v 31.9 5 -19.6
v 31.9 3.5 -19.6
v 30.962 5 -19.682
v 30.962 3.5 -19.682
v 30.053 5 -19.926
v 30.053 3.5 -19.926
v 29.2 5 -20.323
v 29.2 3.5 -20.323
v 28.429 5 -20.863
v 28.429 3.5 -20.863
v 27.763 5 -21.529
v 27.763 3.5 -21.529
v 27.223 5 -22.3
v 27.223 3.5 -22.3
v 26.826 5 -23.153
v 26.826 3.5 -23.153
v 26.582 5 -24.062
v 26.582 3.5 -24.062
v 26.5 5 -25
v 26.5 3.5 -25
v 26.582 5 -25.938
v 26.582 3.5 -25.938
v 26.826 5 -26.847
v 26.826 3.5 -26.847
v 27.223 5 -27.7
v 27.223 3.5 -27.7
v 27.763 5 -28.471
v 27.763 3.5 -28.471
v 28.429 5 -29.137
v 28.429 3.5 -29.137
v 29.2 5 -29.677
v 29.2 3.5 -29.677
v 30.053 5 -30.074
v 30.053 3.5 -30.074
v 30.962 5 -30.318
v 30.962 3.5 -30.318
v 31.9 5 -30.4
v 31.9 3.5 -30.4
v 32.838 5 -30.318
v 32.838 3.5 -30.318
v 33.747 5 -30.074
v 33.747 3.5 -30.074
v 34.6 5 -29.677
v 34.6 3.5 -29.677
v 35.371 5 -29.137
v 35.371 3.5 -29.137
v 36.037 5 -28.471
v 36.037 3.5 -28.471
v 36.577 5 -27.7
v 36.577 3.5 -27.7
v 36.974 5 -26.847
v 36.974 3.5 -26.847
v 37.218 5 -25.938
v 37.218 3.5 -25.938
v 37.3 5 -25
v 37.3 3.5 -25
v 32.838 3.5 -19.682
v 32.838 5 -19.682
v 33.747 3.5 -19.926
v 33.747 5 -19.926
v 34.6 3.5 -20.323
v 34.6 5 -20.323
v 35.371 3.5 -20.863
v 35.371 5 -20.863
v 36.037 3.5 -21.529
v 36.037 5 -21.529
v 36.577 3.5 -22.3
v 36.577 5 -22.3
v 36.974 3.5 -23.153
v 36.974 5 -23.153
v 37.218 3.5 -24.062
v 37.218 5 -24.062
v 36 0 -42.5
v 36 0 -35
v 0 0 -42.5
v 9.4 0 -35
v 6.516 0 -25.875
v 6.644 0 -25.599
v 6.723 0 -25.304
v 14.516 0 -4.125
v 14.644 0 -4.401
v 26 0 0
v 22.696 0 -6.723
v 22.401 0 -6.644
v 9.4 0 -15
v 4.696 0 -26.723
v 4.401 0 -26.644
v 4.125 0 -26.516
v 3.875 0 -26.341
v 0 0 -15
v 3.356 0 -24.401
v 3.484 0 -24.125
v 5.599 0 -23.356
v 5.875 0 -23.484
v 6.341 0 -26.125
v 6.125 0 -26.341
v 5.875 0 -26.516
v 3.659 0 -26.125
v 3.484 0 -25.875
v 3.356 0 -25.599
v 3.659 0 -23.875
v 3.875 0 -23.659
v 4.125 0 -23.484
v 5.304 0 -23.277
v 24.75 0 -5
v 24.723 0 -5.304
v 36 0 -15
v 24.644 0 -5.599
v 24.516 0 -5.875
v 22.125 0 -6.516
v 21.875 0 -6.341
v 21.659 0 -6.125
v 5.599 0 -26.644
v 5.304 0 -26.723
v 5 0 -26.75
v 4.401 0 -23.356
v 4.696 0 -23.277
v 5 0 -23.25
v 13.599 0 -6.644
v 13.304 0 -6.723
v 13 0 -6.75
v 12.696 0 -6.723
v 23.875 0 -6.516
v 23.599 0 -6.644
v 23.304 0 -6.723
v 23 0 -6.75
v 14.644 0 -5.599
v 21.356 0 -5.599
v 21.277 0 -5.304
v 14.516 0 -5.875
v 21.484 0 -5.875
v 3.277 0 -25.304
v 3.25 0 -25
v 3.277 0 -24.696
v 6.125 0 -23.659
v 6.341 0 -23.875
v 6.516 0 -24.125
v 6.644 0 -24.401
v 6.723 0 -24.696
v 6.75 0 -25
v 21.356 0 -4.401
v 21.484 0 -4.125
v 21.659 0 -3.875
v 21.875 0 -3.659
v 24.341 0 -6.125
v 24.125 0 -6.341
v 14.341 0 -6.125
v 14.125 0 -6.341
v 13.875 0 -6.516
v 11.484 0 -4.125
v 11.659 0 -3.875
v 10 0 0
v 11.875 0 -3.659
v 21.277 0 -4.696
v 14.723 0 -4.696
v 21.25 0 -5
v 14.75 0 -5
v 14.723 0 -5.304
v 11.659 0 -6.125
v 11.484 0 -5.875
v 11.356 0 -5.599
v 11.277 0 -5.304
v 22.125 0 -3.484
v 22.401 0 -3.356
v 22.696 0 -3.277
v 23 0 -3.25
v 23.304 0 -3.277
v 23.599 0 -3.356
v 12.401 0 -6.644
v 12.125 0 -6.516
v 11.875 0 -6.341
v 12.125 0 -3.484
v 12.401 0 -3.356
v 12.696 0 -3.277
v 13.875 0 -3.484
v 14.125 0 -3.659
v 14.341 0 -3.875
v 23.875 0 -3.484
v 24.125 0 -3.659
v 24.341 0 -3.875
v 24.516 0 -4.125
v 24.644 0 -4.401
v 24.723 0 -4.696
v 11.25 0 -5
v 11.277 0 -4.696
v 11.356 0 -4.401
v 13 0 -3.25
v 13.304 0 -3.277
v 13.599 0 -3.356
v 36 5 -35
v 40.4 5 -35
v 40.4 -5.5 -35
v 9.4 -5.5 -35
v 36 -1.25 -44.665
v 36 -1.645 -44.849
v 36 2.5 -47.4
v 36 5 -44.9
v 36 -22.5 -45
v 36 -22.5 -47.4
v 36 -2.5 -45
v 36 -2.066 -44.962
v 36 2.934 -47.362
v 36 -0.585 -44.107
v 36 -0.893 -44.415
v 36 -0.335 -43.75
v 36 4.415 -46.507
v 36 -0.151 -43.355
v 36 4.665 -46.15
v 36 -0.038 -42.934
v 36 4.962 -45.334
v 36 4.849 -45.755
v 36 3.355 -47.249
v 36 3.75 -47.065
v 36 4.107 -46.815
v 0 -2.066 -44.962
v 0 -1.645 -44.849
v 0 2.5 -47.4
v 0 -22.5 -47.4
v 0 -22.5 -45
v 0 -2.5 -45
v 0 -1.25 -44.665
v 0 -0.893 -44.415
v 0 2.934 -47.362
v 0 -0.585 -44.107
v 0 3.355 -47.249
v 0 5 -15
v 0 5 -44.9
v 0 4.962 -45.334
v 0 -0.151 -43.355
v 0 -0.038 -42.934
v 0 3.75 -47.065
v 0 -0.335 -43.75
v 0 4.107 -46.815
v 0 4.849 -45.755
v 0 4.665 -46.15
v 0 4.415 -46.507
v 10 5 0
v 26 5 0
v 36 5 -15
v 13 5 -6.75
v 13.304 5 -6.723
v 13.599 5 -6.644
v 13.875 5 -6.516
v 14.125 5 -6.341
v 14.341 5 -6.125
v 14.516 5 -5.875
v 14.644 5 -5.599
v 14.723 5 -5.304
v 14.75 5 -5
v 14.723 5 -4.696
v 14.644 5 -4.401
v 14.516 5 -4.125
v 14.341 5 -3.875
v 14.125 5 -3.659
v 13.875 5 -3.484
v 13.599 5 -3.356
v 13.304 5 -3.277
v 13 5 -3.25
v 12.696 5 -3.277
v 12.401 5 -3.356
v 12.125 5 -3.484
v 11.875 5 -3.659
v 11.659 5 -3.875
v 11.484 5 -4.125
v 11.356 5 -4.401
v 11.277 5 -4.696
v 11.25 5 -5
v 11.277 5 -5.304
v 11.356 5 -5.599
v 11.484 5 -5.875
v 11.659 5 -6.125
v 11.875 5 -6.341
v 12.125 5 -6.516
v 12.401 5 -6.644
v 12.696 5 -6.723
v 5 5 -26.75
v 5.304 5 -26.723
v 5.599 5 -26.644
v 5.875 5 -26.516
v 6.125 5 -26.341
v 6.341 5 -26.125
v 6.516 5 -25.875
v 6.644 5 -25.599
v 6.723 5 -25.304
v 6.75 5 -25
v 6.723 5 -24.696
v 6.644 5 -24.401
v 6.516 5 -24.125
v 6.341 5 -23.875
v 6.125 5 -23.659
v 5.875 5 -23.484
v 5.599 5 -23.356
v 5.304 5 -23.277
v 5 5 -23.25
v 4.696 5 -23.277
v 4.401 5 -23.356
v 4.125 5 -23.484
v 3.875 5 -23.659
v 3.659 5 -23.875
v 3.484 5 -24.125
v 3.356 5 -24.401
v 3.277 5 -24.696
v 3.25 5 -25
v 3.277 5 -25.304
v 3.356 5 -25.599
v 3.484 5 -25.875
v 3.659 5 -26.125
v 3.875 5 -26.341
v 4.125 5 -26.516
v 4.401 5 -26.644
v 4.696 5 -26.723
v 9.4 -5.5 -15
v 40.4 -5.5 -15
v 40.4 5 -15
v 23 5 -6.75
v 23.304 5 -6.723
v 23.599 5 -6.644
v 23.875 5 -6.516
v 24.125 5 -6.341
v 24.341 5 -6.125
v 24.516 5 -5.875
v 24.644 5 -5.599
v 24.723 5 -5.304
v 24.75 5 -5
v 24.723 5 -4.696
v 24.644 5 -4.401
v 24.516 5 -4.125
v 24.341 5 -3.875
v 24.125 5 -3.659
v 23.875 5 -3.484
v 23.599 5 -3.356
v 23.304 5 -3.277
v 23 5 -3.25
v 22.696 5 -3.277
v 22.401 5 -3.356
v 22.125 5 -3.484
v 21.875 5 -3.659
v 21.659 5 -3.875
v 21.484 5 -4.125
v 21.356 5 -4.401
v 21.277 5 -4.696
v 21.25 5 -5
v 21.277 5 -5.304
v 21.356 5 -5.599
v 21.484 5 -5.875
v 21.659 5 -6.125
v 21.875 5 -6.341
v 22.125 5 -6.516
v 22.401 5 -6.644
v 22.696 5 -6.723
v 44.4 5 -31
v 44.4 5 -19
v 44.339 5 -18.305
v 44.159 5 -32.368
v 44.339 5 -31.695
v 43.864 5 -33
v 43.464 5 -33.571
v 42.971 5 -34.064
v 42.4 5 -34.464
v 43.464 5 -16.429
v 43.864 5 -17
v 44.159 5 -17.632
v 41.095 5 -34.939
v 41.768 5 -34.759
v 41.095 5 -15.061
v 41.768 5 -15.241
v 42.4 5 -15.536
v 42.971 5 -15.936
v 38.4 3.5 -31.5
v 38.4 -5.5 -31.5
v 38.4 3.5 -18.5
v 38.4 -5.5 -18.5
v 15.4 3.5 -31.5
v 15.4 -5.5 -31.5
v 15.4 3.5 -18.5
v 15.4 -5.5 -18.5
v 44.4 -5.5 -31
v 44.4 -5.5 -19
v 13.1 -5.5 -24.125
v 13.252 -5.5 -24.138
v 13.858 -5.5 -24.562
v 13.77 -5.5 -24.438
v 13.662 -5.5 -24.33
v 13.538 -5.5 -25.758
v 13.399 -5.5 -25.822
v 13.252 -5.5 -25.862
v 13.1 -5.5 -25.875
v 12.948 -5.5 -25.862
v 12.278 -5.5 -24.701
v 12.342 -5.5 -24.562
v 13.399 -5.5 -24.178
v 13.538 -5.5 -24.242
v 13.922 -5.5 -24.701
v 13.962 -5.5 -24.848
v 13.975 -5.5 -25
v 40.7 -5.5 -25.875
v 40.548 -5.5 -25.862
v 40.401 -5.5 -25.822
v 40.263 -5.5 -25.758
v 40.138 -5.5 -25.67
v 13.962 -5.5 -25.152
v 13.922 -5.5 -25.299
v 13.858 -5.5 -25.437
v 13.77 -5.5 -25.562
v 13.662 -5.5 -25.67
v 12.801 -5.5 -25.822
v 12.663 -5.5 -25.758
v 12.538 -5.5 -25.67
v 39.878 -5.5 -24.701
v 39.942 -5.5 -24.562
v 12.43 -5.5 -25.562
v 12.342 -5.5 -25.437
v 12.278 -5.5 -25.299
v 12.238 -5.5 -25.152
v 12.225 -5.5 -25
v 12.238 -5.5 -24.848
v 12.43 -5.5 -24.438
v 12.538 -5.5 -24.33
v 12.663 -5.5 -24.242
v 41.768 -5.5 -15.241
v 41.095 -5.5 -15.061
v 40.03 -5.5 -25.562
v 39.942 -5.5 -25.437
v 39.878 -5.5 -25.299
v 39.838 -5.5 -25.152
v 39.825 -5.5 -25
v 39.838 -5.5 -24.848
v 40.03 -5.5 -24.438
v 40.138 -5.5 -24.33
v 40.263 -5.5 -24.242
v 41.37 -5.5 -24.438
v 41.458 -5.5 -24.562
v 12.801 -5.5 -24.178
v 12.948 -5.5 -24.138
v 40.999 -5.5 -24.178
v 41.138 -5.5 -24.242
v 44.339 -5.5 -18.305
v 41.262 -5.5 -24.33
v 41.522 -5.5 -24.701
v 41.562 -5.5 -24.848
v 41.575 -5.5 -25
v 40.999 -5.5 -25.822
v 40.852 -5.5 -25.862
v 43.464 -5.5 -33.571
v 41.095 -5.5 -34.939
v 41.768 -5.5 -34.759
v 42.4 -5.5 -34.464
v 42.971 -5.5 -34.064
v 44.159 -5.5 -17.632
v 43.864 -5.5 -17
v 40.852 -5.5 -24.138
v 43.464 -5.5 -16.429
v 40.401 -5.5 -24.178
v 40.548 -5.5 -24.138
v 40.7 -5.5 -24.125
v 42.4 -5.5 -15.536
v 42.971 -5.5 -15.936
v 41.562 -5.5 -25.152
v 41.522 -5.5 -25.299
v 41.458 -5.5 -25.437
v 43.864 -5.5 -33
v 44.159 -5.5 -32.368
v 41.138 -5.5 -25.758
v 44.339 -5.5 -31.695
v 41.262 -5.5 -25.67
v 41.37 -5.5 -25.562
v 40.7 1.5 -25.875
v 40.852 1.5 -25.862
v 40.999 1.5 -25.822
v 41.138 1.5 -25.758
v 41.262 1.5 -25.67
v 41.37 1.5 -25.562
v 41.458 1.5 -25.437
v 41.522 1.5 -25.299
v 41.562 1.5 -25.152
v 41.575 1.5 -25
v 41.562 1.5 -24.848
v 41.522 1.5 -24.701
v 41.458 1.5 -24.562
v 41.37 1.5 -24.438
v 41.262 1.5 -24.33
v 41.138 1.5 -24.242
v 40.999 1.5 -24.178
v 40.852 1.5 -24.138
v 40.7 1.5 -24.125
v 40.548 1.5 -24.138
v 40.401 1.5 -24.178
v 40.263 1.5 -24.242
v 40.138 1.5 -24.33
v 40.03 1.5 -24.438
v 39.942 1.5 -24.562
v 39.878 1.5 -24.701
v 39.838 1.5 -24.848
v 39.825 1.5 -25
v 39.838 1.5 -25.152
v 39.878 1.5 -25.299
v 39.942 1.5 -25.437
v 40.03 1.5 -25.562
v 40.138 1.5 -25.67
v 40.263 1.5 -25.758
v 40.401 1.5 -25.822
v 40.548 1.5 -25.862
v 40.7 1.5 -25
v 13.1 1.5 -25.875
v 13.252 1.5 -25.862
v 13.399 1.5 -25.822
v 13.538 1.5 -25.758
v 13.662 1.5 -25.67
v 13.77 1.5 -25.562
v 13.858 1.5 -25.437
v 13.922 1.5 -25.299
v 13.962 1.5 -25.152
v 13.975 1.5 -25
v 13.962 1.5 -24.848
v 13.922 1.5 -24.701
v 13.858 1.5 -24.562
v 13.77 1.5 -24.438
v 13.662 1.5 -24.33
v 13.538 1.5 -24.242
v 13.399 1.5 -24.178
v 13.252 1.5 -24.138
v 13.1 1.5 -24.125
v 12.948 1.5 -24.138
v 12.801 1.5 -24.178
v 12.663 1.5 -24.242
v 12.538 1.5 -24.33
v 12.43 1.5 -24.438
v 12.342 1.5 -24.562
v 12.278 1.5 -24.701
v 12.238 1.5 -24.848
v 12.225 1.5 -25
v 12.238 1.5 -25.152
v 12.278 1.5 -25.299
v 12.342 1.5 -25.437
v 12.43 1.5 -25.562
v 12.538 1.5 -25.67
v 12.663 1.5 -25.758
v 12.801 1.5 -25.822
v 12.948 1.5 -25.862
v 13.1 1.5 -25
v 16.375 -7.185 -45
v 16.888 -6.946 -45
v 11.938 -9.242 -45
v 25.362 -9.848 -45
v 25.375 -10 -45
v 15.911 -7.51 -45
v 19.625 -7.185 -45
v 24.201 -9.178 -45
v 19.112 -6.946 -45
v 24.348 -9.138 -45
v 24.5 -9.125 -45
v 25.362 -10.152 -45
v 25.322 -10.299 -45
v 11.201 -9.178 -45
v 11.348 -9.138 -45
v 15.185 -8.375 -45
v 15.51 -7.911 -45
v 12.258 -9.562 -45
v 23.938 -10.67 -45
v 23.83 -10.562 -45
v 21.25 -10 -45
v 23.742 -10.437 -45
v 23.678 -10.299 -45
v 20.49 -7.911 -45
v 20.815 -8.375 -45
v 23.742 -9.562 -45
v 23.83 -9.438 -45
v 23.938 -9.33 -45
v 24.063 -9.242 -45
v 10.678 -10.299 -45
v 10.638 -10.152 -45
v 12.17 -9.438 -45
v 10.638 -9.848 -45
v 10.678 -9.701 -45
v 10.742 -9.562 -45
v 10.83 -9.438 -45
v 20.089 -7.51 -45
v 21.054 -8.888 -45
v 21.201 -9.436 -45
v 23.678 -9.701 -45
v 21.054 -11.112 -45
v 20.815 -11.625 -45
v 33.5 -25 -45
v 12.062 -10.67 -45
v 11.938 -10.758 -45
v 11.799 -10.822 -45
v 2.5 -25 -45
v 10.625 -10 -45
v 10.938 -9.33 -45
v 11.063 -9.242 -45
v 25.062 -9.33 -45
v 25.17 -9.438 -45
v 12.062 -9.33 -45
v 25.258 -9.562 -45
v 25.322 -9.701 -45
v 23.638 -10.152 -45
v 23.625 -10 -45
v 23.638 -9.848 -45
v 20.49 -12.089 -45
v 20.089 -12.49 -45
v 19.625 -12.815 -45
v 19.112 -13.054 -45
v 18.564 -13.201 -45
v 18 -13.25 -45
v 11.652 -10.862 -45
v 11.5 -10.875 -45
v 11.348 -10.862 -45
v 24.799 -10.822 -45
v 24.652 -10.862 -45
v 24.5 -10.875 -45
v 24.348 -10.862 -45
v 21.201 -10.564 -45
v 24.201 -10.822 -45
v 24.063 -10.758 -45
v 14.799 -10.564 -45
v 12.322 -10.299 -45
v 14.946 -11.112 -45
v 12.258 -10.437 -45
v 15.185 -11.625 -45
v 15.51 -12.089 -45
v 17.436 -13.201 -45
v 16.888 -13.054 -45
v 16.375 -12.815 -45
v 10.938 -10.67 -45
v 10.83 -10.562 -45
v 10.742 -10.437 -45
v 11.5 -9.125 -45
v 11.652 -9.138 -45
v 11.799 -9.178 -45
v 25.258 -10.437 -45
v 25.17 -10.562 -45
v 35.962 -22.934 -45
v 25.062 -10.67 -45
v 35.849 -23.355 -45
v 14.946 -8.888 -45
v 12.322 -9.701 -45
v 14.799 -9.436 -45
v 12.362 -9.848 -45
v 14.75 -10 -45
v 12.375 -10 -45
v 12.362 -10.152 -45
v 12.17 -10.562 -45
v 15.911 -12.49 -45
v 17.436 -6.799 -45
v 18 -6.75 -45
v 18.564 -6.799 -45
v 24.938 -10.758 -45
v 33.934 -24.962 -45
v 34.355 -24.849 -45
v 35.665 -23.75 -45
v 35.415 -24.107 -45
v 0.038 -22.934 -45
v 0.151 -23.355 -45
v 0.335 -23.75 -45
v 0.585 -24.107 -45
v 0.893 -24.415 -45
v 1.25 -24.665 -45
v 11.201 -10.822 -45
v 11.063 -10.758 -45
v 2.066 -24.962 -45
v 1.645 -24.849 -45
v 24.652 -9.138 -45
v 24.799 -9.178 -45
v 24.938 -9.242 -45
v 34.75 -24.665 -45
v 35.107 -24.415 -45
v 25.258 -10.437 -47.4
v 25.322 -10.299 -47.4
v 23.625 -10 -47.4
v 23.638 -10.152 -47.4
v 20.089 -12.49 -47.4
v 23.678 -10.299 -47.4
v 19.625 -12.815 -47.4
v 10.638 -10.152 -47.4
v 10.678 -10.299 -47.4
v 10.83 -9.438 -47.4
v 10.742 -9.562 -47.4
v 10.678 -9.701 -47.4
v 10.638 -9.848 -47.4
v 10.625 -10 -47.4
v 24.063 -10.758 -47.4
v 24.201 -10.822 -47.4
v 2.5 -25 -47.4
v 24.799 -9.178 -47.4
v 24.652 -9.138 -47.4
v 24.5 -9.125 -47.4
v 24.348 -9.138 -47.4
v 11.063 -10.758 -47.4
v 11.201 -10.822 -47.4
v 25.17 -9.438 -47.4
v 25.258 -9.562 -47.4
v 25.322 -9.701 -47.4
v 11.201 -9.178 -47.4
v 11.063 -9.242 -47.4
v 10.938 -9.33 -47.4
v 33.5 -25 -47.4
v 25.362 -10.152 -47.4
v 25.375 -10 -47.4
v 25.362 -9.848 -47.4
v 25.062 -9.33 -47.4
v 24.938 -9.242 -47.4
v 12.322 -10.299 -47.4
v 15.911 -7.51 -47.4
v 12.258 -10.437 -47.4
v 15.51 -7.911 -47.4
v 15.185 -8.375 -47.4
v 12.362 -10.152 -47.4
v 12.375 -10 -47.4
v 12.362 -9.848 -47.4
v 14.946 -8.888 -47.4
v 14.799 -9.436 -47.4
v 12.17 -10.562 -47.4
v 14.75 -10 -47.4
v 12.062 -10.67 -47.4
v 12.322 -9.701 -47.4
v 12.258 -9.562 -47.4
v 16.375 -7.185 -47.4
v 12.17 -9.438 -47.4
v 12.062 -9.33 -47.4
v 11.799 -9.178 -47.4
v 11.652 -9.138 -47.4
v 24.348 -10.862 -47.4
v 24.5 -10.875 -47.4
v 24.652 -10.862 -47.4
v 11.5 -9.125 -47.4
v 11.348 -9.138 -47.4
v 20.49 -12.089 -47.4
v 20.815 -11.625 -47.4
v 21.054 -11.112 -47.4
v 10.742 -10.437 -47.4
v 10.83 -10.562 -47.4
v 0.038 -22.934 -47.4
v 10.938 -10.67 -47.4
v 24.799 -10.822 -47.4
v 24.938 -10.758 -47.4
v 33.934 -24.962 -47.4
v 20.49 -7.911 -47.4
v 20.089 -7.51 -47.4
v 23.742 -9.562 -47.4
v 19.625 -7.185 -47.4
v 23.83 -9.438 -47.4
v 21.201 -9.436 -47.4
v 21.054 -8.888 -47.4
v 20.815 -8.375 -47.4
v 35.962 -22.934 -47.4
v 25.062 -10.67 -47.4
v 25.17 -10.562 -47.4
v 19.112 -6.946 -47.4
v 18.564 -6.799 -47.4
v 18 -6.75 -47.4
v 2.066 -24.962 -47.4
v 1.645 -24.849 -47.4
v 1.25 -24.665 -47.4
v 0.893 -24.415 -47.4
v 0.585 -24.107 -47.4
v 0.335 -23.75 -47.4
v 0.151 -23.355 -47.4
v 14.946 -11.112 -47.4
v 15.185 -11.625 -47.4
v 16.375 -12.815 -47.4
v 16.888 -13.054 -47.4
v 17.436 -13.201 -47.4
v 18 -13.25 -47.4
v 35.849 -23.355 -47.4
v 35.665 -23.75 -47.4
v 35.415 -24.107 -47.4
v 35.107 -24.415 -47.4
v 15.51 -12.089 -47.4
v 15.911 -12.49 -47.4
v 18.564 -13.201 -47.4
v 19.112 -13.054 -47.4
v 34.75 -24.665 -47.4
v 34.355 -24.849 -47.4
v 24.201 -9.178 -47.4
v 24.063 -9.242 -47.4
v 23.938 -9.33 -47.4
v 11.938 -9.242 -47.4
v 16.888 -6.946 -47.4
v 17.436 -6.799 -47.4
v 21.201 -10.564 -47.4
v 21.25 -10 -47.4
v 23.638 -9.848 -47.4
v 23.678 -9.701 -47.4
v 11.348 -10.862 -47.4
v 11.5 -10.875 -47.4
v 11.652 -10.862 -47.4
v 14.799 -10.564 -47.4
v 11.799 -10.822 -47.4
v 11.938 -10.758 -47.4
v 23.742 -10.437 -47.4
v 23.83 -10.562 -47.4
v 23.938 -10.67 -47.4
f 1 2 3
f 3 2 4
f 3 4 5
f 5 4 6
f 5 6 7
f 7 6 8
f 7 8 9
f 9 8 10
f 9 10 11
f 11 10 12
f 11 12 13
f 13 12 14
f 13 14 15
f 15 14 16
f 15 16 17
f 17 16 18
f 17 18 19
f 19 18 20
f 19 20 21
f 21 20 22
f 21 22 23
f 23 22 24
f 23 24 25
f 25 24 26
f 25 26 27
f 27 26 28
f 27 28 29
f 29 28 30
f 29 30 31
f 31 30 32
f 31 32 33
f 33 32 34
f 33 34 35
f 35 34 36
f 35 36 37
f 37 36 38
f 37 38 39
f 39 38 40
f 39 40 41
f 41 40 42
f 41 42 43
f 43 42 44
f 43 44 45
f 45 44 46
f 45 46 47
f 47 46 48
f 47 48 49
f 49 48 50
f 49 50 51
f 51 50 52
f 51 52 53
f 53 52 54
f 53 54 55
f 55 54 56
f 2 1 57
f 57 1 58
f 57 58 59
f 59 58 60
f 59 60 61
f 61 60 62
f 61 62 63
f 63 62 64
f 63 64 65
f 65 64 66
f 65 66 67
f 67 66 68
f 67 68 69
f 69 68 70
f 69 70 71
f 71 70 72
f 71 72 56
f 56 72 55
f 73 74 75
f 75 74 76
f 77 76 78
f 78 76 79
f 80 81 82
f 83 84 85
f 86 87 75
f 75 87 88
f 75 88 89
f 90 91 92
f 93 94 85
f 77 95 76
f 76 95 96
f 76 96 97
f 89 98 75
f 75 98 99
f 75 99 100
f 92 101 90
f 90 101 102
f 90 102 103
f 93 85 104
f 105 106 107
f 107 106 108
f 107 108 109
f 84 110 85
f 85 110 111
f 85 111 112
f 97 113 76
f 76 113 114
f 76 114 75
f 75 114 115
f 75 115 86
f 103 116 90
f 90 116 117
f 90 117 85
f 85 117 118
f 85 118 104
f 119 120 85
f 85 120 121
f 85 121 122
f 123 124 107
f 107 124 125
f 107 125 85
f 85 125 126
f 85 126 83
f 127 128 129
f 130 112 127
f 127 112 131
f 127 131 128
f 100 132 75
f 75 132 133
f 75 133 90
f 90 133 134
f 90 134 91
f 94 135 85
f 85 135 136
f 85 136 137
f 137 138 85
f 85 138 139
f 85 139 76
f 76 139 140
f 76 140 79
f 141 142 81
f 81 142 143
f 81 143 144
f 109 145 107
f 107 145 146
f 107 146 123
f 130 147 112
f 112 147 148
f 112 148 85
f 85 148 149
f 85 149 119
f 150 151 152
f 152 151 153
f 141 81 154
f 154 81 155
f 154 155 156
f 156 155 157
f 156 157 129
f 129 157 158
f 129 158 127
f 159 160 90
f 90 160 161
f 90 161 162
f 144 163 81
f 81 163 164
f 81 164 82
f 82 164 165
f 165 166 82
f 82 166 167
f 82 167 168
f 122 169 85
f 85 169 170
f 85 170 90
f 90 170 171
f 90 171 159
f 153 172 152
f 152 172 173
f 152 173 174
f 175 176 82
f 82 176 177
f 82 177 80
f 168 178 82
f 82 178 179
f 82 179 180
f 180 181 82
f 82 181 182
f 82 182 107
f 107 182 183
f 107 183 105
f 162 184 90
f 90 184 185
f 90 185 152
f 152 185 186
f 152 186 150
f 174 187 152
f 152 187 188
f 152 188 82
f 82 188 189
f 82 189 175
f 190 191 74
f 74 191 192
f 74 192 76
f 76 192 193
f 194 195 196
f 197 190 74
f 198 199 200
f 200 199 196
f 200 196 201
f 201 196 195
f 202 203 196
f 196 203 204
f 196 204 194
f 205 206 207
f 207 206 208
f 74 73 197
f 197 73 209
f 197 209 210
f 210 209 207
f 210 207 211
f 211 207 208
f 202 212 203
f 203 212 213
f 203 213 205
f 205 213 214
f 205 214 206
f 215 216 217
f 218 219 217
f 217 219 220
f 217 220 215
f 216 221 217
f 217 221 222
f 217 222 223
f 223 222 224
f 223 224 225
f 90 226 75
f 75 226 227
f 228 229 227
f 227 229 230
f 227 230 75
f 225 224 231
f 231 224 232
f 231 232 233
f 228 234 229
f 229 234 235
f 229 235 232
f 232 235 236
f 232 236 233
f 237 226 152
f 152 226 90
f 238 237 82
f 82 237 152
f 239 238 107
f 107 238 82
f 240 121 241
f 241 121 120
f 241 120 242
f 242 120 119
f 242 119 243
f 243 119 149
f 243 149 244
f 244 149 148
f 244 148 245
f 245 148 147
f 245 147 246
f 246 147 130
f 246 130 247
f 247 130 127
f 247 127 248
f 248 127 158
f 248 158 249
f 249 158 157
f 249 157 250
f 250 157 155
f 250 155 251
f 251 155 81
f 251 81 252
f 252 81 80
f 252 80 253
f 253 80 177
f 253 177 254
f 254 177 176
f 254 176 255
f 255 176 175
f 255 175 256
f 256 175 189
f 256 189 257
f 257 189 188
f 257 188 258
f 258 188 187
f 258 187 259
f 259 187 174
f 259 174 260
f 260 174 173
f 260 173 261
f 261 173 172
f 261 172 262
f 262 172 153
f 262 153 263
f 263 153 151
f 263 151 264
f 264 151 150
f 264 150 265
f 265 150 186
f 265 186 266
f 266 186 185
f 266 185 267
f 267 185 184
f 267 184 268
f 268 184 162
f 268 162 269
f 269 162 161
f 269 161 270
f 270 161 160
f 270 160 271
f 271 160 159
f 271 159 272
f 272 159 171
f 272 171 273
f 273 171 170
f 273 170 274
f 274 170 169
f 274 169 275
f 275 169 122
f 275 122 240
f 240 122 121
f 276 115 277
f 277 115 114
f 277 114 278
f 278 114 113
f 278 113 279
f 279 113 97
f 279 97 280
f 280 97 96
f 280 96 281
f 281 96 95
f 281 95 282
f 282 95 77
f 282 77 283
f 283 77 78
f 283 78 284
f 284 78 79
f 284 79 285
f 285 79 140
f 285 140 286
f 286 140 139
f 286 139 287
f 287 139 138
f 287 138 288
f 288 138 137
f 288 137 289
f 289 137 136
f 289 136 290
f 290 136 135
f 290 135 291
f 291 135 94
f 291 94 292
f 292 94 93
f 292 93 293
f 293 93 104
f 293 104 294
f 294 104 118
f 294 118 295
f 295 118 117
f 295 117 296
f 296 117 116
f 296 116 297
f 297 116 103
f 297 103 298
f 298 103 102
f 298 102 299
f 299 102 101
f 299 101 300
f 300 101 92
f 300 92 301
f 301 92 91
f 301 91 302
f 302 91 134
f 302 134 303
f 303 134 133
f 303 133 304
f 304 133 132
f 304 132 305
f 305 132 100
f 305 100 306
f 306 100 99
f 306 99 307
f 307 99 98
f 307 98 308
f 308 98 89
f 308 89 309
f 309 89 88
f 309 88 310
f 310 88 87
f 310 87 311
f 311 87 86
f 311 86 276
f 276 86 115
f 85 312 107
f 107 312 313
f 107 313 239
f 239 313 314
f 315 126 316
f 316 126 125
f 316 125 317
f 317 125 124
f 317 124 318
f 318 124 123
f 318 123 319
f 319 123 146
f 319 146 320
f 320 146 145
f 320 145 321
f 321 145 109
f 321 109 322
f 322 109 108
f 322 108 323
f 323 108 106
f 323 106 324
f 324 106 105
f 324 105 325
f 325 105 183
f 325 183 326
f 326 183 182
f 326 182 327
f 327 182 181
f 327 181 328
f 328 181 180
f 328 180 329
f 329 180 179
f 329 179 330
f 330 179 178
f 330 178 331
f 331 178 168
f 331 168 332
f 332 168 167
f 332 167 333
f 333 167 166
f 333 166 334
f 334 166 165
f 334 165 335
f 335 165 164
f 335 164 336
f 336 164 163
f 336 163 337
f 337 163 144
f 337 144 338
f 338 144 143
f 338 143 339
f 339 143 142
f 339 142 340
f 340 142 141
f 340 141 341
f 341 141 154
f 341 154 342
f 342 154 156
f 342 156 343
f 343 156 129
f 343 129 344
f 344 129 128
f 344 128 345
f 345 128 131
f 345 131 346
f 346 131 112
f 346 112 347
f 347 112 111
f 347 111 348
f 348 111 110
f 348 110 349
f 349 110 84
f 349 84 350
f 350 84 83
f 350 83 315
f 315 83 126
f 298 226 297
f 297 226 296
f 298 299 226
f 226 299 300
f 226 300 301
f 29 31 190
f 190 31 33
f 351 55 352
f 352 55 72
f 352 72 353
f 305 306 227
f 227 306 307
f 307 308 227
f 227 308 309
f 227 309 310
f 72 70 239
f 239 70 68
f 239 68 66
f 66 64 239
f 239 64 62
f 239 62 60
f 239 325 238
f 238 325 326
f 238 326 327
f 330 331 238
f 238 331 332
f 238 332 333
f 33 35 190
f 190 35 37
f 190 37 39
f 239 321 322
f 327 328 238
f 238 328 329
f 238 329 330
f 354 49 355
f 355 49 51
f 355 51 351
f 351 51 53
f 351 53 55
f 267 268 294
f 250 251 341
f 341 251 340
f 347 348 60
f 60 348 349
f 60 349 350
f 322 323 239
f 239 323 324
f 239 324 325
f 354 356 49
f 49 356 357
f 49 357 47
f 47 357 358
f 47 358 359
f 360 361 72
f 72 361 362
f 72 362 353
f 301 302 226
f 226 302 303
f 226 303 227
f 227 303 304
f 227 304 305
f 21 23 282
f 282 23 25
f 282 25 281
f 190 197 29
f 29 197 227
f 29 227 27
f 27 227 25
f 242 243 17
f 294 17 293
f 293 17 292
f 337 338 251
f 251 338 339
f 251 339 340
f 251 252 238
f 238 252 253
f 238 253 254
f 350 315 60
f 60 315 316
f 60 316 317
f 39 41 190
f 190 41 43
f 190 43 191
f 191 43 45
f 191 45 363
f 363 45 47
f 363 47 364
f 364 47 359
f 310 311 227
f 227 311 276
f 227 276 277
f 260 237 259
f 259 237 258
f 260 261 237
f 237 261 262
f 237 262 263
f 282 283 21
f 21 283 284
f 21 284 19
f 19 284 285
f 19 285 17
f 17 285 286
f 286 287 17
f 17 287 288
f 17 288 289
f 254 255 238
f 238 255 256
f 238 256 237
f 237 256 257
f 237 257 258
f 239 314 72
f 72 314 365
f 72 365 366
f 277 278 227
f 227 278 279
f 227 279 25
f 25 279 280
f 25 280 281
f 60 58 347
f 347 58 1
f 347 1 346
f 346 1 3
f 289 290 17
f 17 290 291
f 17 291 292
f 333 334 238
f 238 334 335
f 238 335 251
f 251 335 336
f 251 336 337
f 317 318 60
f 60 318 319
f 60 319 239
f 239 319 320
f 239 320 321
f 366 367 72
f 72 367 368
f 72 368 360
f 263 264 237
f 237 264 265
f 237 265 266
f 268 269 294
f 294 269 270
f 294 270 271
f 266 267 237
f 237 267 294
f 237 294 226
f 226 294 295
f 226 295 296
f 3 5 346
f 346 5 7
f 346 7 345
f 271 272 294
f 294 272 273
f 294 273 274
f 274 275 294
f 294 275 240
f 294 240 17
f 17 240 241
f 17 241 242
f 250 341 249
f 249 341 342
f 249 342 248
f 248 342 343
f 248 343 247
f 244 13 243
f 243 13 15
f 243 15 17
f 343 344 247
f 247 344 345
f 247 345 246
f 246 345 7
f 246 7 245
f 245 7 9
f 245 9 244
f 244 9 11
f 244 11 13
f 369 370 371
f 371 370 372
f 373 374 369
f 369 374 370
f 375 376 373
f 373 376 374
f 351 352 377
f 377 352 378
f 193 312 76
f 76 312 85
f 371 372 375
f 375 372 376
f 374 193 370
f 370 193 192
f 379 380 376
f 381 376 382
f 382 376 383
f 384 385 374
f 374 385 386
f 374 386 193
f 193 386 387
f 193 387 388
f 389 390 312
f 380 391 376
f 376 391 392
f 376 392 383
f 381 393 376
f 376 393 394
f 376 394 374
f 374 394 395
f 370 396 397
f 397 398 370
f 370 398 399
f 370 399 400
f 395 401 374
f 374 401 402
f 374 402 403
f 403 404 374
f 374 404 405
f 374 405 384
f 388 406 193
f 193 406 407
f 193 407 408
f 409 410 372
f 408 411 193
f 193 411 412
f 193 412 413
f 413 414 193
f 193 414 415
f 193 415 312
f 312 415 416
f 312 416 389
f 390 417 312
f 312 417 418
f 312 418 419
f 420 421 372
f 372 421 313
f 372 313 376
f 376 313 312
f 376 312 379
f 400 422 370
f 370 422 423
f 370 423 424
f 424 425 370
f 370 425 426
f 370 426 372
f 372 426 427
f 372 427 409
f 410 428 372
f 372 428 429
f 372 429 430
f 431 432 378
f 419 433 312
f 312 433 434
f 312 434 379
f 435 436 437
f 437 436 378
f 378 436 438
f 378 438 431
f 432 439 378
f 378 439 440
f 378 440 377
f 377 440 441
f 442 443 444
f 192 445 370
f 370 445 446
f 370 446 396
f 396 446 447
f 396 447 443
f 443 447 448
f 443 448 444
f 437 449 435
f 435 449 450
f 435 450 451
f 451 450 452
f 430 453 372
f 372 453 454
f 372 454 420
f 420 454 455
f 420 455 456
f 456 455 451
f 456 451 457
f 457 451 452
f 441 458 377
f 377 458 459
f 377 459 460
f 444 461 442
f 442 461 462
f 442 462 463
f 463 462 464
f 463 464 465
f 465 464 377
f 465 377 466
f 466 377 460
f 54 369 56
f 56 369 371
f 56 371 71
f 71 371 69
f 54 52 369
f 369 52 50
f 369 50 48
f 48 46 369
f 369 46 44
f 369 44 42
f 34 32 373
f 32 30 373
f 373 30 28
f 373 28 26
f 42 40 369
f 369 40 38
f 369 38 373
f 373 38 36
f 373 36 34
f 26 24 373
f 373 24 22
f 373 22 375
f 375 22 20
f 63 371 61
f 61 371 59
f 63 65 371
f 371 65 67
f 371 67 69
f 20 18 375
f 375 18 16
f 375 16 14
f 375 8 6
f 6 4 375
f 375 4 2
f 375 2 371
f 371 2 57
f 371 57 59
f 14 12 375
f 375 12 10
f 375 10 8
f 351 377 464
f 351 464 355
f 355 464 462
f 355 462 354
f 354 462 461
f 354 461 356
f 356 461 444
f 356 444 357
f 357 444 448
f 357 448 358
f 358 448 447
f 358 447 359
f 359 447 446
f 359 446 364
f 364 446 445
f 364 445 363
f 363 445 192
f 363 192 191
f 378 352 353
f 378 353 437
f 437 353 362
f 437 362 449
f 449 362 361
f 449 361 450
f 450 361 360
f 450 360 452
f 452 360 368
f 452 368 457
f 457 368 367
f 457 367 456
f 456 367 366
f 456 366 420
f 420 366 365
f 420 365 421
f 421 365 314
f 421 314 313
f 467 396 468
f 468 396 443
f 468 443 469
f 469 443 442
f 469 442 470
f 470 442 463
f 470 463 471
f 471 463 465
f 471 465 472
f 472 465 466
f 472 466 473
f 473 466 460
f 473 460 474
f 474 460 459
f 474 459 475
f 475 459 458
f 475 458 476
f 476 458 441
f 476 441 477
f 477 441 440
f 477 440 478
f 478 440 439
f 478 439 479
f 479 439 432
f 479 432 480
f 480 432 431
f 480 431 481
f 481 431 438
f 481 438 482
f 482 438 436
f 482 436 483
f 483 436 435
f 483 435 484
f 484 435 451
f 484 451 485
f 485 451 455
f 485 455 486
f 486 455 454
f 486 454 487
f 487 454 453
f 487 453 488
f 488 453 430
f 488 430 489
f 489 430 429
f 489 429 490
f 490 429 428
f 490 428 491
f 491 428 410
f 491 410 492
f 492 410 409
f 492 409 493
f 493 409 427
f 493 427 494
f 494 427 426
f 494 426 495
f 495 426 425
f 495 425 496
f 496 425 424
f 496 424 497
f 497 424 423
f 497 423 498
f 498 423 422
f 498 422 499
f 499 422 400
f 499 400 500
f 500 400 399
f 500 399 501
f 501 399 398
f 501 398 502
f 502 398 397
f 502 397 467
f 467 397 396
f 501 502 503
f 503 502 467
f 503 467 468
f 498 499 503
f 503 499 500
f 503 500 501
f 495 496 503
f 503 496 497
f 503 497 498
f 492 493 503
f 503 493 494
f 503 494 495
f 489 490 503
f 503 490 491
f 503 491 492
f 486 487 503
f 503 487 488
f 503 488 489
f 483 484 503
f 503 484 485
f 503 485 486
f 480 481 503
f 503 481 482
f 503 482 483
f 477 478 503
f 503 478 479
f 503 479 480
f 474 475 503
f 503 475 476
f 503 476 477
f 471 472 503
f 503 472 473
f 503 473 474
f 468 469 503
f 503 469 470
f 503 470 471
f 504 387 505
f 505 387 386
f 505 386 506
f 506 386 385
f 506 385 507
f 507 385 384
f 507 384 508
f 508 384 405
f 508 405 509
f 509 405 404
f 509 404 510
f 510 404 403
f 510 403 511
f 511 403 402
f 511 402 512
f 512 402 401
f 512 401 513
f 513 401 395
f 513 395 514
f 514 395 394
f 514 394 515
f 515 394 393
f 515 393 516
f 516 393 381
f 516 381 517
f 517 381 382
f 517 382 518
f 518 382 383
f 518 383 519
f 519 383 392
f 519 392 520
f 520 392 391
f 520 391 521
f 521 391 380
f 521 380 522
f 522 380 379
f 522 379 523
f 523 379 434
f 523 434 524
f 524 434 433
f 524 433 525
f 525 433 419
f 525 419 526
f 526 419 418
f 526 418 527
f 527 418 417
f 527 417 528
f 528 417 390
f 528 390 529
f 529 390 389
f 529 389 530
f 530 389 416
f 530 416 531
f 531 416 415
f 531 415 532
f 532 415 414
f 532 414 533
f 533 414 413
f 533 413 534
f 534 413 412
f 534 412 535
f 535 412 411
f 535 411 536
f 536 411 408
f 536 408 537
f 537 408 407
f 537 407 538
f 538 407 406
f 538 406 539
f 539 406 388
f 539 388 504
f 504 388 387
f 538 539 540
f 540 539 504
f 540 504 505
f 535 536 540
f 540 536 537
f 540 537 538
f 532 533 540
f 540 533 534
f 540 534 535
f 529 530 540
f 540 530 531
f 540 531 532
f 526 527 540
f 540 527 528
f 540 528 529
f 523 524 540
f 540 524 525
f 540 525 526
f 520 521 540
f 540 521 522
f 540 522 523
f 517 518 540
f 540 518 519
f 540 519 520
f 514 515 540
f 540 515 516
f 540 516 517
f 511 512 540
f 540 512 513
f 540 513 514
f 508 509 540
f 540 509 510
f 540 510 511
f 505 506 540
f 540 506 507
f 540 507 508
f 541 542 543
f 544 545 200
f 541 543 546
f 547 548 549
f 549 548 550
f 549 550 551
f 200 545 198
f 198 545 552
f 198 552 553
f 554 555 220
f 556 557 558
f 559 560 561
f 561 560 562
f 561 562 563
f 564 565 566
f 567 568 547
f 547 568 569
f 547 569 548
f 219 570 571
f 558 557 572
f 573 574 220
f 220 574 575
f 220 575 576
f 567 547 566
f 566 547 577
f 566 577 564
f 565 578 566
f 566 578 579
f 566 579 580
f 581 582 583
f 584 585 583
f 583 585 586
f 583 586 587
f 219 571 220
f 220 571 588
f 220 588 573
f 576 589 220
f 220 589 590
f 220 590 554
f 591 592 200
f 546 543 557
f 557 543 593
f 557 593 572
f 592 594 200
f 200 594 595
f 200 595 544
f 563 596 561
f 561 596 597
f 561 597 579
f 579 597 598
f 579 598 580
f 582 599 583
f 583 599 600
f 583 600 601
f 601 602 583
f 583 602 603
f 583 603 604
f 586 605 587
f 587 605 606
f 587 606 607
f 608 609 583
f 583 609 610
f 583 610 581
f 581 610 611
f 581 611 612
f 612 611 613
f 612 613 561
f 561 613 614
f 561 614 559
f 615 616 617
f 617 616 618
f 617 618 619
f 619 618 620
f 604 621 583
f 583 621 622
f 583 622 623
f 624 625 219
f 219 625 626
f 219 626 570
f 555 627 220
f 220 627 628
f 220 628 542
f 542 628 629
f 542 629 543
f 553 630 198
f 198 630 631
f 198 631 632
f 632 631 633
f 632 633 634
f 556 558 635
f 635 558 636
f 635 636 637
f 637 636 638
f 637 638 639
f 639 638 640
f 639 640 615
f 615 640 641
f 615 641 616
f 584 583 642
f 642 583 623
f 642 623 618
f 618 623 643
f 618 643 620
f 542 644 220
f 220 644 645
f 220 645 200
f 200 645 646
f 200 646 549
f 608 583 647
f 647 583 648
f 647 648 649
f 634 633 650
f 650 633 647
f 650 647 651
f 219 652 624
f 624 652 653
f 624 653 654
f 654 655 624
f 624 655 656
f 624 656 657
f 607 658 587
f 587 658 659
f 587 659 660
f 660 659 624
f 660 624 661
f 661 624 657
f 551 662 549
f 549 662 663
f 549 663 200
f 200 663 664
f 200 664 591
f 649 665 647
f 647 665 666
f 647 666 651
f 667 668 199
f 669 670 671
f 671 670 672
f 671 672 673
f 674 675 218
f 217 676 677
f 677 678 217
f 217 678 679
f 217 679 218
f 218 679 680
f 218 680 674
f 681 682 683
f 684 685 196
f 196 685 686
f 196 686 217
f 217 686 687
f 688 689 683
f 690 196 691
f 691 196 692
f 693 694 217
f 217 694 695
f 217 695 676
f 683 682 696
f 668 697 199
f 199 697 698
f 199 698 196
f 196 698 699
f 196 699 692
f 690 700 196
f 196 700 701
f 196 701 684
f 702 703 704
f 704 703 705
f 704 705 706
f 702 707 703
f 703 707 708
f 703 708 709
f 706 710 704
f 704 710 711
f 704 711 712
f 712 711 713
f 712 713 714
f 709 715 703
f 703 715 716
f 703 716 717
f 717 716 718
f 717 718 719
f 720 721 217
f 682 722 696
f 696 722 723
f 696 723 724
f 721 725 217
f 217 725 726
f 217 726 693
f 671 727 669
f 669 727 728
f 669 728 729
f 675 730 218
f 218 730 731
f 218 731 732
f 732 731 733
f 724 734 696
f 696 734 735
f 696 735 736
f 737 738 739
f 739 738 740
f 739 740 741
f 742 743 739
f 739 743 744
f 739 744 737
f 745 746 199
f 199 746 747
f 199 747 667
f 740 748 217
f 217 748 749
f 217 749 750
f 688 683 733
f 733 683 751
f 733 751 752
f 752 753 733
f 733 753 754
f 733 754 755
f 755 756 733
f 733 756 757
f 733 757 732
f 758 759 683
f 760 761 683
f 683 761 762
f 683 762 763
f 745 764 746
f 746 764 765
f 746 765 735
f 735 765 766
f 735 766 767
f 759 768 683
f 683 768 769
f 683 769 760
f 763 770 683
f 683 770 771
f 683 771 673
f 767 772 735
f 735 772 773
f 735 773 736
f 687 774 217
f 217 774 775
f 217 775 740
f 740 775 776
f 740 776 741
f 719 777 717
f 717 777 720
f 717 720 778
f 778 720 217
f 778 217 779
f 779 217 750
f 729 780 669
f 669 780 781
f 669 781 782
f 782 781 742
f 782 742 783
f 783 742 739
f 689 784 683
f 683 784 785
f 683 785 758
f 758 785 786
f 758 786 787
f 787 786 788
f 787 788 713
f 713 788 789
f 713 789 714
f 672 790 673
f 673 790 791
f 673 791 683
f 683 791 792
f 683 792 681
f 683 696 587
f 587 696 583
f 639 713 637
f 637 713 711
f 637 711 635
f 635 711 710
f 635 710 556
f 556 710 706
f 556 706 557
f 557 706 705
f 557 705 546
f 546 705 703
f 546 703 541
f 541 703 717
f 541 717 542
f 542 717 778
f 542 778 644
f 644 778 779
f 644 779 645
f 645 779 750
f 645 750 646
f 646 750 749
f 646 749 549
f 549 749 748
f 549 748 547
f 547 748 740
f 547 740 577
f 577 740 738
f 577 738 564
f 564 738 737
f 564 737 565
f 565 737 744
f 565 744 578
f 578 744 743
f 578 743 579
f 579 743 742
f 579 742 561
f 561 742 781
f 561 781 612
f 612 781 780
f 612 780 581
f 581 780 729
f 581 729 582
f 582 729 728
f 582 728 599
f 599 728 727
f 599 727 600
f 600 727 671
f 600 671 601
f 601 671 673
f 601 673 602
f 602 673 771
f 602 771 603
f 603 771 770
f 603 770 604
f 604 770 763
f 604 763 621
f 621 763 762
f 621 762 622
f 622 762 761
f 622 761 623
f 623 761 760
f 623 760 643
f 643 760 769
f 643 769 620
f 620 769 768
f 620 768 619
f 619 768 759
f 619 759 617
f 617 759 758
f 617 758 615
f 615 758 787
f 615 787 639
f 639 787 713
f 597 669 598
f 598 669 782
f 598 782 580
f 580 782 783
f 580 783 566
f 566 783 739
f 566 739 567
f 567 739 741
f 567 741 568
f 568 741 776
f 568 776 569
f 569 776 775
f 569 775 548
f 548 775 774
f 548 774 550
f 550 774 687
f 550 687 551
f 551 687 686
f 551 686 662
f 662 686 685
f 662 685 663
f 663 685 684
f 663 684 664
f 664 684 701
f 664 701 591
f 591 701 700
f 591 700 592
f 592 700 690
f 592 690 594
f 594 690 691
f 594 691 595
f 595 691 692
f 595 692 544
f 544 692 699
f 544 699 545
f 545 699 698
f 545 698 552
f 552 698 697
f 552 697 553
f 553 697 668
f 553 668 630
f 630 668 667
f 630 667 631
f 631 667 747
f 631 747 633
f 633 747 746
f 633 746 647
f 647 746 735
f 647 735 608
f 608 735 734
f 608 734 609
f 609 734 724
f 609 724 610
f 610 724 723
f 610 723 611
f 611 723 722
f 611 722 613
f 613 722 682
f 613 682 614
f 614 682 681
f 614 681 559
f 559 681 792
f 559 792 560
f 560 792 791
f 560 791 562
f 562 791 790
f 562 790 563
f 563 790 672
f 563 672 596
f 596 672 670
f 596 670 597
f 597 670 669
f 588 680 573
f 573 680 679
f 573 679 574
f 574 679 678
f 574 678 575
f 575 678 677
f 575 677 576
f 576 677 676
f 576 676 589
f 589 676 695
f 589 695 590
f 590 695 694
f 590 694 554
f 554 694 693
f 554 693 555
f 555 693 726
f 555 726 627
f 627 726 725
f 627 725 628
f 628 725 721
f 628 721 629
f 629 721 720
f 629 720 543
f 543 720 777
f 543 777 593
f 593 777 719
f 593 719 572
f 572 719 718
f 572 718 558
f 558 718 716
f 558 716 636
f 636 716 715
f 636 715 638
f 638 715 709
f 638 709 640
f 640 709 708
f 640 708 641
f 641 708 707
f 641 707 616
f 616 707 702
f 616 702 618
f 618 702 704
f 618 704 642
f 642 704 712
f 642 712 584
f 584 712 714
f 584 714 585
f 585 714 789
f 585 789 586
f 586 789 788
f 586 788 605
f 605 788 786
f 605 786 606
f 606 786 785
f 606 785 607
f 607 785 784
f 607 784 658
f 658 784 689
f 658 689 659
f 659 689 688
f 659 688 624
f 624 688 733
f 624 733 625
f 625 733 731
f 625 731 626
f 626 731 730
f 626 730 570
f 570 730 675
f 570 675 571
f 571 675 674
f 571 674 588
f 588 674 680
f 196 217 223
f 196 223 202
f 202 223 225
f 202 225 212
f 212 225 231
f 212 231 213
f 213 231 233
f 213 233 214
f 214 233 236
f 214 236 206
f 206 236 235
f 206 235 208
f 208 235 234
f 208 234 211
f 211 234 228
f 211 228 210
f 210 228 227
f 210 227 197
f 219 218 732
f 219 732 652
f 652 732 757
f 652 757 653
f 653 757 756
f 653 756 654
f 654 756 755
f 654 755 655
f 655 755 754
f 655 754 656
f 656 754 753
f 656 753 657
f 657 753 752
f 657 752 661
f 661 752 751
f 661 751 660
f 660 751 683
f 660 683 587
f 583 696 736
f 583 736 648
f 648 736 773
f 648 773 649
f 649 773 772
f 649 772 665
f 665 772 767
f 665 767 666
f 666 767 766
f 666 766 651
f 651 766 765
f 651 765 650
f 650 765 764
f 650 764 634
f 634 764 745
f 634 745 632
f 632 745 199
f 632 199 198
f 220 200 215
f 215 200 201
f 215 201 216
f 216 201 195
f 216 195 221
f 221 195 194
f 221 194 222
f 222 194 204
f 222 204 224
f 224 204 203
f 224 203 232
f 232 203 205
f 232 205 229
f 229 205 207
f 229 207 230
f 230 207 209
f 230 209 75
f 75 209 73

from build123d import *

# Parameters (mm, degrees)
SKETCH1_R           = 1.75
SKETCH1_W           = 7.2
SKETCH1_H           = 5.4
BOSS_EXTRUDE1_DEPTH = 5
FILLET5_RADIUS      = 10
FILLET5_LENGTH      = 5
FILLET2_R           = 5.4
FILLET6_R           = 5.4
SKETCH3_W           = 35
SKETCH3_H           = 20
SKETCH3_W_2         = 23
SKETCH3_H_2         = 13
BOSS_EXTRUDE4_DEPTH = 5.5
SKETCH5_W           = 23
SKETCH5_H           = 13
CUT_EXTRUDE1_DEPTH  = 3.5
CUT_EXTRUDE2_DEPTH  = 76.201396264
FILLET9_R           = 4
SKETCH9_R           = 0.875
CUT_EXTRUDE4_DEPTH  = 7
SKETCH10_W          = 36
SKETCH10_H          = 2.4
BOSS_EXTRUDE5_DEPTH = 30
SKETCH11_R          = 3.25
SKETCH11_R_2        = 0.875
CUT_EXTRUDE5_DEPTH  = 30
FILLET10_R          = 2.5


with BuildPart() as part:
    # Sketch1 → Boss-Extrude1 (new body)
    # profile 1 of 4: a face of its own
    with BuildSketch(Plane(origin=(0, 0, 0), x_dir=(1, 0, 0), z_dir=(0, 1, 0))):
        with BuildLine():
            Line((0, 15), (10, 0))
            Line((10, 0), (26, 0))
            Line((26, 0), (36, 15))
            Line((36, 15), (60, 15))
            Line((60, 15), (60, 25))
            Line((60, 25), (44.5, 25))
            Line((44.5, 25), (44.5, 19.6))
            Line((44.5, 19.6), (37.3, 19.6))
            Line((37.3, 19.6), (26.5, 19.6))
            Line((26.5, 19.6), (26.5, 25))
            Line((26.5, 25), (6.75, 25))
            ThreePointArc((6.75, 25), (5, 23.25), (3.25, 25))
            Line((3.25, 25), (0, 25))
            Line((0, 25), (0, 15))
        make_face()
        with Locations(Location((13, 5, 0), (0, 0, 270))):
            Circle(SKETCH1_R, mode=Mode.SUBTRACT)
        with Locations(Location((23, 5, 0), (0, 0, 270))):
            Circle(SKETCH1_R, mode=Mode.SUBTRACT)
    # profile 2 of 4: a face of its own
    with BuildSketch(Plane(origin=(0, 0, 0), x_dir=(1, 0, 0), z_dir=(0, 1, 0))):
        with BuildLine():
            Line((0, 45), (0, 25))
            Line((0, 25), (3.25, 25))
            ThreePointArc((3.25, 25), (5, 26.75), (6.75, 25))
            Line((6.75, 25), (26.5, 25))
            Line((26.5, 25), (26.5, 30.4))
            Line((26.5, 30.4), (37.3, 30.4))
            Line((37.3, 30.4), (44.5, 30.4))
            Line((44.5, 30.4), (44.5, 25))
            Line((44.5, 25), (60, 25))
            Line((60, 25), (60, 35))
            Line((60, 35), (36, 35))
            Line((36, 35), (36, 45))
            Line((36, 45), (26, 45))
            Line((26, 45), (0, 45))
        make_face()
    # profile 3 of 4: a face of its own
    with BuildSketch(Plane(origin=(0, 0, 0), x_dir=(1, 0, 0), z_dir=(0, 1, 0))):
        with Locations((40.9, 27.7)):
            Rectangle(SKETCH1_W, SKETCH1_H)
    # profile 4 of 4: a face of its own
    with BuildSketch(Plane(origin=(0, 0, 0), x_dir=(1, 0, 0), z_dir=(0, 1, 0))):
        with Locations((40.9, 22.3)):
            Rectangle(SKETCH1_W, SKETCH1_H)
    extrude(amount=BOSS_EXTRUDE1_DEPTH)

    # Fillet5: full round fillet: the end face becomes a half cylinder, R = half its width
    fillet5_face = Plane((60, 2.5, -25), x_dir=(0, -1, 0), z_dir=(1, 0, 0))  # on the end face: x along it, z out of the body
    fillet5_slab = fillet5_face.offset(-FILLET5_RADIUS / 2) * Box(FILLET5_LENGTH, 2 * FILLET5_RADIUS, FILLET5_RADIUS, mode=Mode.PRIVATE)  # the body's end, R deep
    fillet5_round = Plane((50, 2.5, -25), x_dir=(1, 0, 0), z_dir=(0, -1, 0)) * Cylinder(FILLET5_RADIUS, FILLET5_LENGTH, mode=Mode.PRIVATE)  # its axis R under the face
    add(fillet5_slab - fillet5_round, mode=Mode.SUBTRACT)

    # Fillet2
    fillet2_edges = [part.edges().sort_by_distance(p)[0] for p in [
        (26.5, 2.5, -30.4),
        (26.5, 2.5, -19.6),
    ]]
    fillet(fillet2_edges, radius=FILLET2_R - 0.0001)  # a hair under: the kernel refuses the full size

    # Fillet6
    fillet6_edges = [part.edges().sort_by_distance(p)[0] for p in [
        (37.3, 2.5, -19.6),
        (37.3, 2.5, -30.4),
    ]]
    fillet(fillet6_edges, radius=FILLET6_R - 0.0001)  # a hair under: the kernel refuses the full size

    # Sketch3 → Boss-Extrude4 (add)
    with BuildSketch(Plane.XZ):
        with Locations((26.9, -25)):
            Rectangle(SKETCH3_W, SKETCH3_H)
        with Locations((26.9, -25)):
            Rectangle(SKETCH3_W_2, SKETCH3_H_2, mode=Mode.SUBTRACT)
    extrude(amount=BOSS_EXTRUDE4_DEPTH)

    # Sketch5 → Cut-Extrude1 (cut)
    with BuildSketch(Plane.XZ):
        with Locations((26.9, -25)):
            Rectangle(SKETCH5_W, SKETCH5_H)
    extrude(amount=-CUT_EXTRUDE1_DEPTH, mode=Mode.SUBTRACT)

    # Sketch6 → Cut-Extrude2 (cut, through all)
    with BuildSketch(Plane.XZ):
        with BuildLine():
            Line((44.4, -15), (44.4, -35))
            Line((44.4, -35), (50, -35))
            ThreePointArc((50, -35), (60, -25), (50, -15))
            Line((50, -15), (44.4, -15))
        make_face()
    extrude(amount=-CUT_EXTRUDE2_DEPTH, mode=Mode.SUBTRACT)

    # Fillet9
    fillet9_edges = [part.edges().sort_by_distance(p)[0] for p in [
        (44.4, -0.25, -35),
        (44.4, -0.25, -15),
    ]]
    fillet(fillet9_edges, radius=FILLET9_R)

    # Sketch9 → Cut-Extrude4 (cut)
    with BuildSketch(Plane.XZ.offset(5.5)):
        with Locations(Location((13.1, -25, 0), (0, 0, 270))):
            Circle(SKETCH9_R)
        with Locations(Location((40.7, -25, 0), (0, 0, 270))):
            Circle(SKETCH9_R)
    extrude(amount=-CUT_EXTRUDE4_DEPTH, mode=Mode.SUBTRACT)

    # Sketch10 → Boss-Extrude5 (add)
    with BuildSketch(Plane(origin=(0, 5, 0), x_dir=(1, 0, 0), z_dir=(0, 1, 0))):
        with Locations((18, 46.2)):
            Rectangle(SKETCH10_W, SKETCH10_H)
    extrude(amount=-BOSS_EXTRUDE5_DEPTH)

    # Sketch11 → Cut-Extrude5 (cut)
    with BuildSketch(Plane(origin=(0, 0, -47.4), x_dir=(-1, 0, 0), z_dir=(0, 0, -1))):
        with Locations((-18, -10)):
            Circle(SKETCH11_R)
        with Locations((-24.5, -10)):
            Circle(SKETCH11_R_2)
        with Locations((-11.5, -10)):
            Circle(SKETCH11_R_2)
    extrude(amount=-CUT_EXTRUDE5_DEPTH, mode=Mode.SUBTRACT)

    # Fillet10
    fillet10_edges = [part.edges().sort_by_distance(p)[0] for p in [
        (0, -25, -46.2),
        (36, -25, -46.2),
        (18, 5, -47.4),
        (18, 0, -45),
    ]]
    fillet(fillet10_edges, radius=FILLET10_R)


solid = part.part
